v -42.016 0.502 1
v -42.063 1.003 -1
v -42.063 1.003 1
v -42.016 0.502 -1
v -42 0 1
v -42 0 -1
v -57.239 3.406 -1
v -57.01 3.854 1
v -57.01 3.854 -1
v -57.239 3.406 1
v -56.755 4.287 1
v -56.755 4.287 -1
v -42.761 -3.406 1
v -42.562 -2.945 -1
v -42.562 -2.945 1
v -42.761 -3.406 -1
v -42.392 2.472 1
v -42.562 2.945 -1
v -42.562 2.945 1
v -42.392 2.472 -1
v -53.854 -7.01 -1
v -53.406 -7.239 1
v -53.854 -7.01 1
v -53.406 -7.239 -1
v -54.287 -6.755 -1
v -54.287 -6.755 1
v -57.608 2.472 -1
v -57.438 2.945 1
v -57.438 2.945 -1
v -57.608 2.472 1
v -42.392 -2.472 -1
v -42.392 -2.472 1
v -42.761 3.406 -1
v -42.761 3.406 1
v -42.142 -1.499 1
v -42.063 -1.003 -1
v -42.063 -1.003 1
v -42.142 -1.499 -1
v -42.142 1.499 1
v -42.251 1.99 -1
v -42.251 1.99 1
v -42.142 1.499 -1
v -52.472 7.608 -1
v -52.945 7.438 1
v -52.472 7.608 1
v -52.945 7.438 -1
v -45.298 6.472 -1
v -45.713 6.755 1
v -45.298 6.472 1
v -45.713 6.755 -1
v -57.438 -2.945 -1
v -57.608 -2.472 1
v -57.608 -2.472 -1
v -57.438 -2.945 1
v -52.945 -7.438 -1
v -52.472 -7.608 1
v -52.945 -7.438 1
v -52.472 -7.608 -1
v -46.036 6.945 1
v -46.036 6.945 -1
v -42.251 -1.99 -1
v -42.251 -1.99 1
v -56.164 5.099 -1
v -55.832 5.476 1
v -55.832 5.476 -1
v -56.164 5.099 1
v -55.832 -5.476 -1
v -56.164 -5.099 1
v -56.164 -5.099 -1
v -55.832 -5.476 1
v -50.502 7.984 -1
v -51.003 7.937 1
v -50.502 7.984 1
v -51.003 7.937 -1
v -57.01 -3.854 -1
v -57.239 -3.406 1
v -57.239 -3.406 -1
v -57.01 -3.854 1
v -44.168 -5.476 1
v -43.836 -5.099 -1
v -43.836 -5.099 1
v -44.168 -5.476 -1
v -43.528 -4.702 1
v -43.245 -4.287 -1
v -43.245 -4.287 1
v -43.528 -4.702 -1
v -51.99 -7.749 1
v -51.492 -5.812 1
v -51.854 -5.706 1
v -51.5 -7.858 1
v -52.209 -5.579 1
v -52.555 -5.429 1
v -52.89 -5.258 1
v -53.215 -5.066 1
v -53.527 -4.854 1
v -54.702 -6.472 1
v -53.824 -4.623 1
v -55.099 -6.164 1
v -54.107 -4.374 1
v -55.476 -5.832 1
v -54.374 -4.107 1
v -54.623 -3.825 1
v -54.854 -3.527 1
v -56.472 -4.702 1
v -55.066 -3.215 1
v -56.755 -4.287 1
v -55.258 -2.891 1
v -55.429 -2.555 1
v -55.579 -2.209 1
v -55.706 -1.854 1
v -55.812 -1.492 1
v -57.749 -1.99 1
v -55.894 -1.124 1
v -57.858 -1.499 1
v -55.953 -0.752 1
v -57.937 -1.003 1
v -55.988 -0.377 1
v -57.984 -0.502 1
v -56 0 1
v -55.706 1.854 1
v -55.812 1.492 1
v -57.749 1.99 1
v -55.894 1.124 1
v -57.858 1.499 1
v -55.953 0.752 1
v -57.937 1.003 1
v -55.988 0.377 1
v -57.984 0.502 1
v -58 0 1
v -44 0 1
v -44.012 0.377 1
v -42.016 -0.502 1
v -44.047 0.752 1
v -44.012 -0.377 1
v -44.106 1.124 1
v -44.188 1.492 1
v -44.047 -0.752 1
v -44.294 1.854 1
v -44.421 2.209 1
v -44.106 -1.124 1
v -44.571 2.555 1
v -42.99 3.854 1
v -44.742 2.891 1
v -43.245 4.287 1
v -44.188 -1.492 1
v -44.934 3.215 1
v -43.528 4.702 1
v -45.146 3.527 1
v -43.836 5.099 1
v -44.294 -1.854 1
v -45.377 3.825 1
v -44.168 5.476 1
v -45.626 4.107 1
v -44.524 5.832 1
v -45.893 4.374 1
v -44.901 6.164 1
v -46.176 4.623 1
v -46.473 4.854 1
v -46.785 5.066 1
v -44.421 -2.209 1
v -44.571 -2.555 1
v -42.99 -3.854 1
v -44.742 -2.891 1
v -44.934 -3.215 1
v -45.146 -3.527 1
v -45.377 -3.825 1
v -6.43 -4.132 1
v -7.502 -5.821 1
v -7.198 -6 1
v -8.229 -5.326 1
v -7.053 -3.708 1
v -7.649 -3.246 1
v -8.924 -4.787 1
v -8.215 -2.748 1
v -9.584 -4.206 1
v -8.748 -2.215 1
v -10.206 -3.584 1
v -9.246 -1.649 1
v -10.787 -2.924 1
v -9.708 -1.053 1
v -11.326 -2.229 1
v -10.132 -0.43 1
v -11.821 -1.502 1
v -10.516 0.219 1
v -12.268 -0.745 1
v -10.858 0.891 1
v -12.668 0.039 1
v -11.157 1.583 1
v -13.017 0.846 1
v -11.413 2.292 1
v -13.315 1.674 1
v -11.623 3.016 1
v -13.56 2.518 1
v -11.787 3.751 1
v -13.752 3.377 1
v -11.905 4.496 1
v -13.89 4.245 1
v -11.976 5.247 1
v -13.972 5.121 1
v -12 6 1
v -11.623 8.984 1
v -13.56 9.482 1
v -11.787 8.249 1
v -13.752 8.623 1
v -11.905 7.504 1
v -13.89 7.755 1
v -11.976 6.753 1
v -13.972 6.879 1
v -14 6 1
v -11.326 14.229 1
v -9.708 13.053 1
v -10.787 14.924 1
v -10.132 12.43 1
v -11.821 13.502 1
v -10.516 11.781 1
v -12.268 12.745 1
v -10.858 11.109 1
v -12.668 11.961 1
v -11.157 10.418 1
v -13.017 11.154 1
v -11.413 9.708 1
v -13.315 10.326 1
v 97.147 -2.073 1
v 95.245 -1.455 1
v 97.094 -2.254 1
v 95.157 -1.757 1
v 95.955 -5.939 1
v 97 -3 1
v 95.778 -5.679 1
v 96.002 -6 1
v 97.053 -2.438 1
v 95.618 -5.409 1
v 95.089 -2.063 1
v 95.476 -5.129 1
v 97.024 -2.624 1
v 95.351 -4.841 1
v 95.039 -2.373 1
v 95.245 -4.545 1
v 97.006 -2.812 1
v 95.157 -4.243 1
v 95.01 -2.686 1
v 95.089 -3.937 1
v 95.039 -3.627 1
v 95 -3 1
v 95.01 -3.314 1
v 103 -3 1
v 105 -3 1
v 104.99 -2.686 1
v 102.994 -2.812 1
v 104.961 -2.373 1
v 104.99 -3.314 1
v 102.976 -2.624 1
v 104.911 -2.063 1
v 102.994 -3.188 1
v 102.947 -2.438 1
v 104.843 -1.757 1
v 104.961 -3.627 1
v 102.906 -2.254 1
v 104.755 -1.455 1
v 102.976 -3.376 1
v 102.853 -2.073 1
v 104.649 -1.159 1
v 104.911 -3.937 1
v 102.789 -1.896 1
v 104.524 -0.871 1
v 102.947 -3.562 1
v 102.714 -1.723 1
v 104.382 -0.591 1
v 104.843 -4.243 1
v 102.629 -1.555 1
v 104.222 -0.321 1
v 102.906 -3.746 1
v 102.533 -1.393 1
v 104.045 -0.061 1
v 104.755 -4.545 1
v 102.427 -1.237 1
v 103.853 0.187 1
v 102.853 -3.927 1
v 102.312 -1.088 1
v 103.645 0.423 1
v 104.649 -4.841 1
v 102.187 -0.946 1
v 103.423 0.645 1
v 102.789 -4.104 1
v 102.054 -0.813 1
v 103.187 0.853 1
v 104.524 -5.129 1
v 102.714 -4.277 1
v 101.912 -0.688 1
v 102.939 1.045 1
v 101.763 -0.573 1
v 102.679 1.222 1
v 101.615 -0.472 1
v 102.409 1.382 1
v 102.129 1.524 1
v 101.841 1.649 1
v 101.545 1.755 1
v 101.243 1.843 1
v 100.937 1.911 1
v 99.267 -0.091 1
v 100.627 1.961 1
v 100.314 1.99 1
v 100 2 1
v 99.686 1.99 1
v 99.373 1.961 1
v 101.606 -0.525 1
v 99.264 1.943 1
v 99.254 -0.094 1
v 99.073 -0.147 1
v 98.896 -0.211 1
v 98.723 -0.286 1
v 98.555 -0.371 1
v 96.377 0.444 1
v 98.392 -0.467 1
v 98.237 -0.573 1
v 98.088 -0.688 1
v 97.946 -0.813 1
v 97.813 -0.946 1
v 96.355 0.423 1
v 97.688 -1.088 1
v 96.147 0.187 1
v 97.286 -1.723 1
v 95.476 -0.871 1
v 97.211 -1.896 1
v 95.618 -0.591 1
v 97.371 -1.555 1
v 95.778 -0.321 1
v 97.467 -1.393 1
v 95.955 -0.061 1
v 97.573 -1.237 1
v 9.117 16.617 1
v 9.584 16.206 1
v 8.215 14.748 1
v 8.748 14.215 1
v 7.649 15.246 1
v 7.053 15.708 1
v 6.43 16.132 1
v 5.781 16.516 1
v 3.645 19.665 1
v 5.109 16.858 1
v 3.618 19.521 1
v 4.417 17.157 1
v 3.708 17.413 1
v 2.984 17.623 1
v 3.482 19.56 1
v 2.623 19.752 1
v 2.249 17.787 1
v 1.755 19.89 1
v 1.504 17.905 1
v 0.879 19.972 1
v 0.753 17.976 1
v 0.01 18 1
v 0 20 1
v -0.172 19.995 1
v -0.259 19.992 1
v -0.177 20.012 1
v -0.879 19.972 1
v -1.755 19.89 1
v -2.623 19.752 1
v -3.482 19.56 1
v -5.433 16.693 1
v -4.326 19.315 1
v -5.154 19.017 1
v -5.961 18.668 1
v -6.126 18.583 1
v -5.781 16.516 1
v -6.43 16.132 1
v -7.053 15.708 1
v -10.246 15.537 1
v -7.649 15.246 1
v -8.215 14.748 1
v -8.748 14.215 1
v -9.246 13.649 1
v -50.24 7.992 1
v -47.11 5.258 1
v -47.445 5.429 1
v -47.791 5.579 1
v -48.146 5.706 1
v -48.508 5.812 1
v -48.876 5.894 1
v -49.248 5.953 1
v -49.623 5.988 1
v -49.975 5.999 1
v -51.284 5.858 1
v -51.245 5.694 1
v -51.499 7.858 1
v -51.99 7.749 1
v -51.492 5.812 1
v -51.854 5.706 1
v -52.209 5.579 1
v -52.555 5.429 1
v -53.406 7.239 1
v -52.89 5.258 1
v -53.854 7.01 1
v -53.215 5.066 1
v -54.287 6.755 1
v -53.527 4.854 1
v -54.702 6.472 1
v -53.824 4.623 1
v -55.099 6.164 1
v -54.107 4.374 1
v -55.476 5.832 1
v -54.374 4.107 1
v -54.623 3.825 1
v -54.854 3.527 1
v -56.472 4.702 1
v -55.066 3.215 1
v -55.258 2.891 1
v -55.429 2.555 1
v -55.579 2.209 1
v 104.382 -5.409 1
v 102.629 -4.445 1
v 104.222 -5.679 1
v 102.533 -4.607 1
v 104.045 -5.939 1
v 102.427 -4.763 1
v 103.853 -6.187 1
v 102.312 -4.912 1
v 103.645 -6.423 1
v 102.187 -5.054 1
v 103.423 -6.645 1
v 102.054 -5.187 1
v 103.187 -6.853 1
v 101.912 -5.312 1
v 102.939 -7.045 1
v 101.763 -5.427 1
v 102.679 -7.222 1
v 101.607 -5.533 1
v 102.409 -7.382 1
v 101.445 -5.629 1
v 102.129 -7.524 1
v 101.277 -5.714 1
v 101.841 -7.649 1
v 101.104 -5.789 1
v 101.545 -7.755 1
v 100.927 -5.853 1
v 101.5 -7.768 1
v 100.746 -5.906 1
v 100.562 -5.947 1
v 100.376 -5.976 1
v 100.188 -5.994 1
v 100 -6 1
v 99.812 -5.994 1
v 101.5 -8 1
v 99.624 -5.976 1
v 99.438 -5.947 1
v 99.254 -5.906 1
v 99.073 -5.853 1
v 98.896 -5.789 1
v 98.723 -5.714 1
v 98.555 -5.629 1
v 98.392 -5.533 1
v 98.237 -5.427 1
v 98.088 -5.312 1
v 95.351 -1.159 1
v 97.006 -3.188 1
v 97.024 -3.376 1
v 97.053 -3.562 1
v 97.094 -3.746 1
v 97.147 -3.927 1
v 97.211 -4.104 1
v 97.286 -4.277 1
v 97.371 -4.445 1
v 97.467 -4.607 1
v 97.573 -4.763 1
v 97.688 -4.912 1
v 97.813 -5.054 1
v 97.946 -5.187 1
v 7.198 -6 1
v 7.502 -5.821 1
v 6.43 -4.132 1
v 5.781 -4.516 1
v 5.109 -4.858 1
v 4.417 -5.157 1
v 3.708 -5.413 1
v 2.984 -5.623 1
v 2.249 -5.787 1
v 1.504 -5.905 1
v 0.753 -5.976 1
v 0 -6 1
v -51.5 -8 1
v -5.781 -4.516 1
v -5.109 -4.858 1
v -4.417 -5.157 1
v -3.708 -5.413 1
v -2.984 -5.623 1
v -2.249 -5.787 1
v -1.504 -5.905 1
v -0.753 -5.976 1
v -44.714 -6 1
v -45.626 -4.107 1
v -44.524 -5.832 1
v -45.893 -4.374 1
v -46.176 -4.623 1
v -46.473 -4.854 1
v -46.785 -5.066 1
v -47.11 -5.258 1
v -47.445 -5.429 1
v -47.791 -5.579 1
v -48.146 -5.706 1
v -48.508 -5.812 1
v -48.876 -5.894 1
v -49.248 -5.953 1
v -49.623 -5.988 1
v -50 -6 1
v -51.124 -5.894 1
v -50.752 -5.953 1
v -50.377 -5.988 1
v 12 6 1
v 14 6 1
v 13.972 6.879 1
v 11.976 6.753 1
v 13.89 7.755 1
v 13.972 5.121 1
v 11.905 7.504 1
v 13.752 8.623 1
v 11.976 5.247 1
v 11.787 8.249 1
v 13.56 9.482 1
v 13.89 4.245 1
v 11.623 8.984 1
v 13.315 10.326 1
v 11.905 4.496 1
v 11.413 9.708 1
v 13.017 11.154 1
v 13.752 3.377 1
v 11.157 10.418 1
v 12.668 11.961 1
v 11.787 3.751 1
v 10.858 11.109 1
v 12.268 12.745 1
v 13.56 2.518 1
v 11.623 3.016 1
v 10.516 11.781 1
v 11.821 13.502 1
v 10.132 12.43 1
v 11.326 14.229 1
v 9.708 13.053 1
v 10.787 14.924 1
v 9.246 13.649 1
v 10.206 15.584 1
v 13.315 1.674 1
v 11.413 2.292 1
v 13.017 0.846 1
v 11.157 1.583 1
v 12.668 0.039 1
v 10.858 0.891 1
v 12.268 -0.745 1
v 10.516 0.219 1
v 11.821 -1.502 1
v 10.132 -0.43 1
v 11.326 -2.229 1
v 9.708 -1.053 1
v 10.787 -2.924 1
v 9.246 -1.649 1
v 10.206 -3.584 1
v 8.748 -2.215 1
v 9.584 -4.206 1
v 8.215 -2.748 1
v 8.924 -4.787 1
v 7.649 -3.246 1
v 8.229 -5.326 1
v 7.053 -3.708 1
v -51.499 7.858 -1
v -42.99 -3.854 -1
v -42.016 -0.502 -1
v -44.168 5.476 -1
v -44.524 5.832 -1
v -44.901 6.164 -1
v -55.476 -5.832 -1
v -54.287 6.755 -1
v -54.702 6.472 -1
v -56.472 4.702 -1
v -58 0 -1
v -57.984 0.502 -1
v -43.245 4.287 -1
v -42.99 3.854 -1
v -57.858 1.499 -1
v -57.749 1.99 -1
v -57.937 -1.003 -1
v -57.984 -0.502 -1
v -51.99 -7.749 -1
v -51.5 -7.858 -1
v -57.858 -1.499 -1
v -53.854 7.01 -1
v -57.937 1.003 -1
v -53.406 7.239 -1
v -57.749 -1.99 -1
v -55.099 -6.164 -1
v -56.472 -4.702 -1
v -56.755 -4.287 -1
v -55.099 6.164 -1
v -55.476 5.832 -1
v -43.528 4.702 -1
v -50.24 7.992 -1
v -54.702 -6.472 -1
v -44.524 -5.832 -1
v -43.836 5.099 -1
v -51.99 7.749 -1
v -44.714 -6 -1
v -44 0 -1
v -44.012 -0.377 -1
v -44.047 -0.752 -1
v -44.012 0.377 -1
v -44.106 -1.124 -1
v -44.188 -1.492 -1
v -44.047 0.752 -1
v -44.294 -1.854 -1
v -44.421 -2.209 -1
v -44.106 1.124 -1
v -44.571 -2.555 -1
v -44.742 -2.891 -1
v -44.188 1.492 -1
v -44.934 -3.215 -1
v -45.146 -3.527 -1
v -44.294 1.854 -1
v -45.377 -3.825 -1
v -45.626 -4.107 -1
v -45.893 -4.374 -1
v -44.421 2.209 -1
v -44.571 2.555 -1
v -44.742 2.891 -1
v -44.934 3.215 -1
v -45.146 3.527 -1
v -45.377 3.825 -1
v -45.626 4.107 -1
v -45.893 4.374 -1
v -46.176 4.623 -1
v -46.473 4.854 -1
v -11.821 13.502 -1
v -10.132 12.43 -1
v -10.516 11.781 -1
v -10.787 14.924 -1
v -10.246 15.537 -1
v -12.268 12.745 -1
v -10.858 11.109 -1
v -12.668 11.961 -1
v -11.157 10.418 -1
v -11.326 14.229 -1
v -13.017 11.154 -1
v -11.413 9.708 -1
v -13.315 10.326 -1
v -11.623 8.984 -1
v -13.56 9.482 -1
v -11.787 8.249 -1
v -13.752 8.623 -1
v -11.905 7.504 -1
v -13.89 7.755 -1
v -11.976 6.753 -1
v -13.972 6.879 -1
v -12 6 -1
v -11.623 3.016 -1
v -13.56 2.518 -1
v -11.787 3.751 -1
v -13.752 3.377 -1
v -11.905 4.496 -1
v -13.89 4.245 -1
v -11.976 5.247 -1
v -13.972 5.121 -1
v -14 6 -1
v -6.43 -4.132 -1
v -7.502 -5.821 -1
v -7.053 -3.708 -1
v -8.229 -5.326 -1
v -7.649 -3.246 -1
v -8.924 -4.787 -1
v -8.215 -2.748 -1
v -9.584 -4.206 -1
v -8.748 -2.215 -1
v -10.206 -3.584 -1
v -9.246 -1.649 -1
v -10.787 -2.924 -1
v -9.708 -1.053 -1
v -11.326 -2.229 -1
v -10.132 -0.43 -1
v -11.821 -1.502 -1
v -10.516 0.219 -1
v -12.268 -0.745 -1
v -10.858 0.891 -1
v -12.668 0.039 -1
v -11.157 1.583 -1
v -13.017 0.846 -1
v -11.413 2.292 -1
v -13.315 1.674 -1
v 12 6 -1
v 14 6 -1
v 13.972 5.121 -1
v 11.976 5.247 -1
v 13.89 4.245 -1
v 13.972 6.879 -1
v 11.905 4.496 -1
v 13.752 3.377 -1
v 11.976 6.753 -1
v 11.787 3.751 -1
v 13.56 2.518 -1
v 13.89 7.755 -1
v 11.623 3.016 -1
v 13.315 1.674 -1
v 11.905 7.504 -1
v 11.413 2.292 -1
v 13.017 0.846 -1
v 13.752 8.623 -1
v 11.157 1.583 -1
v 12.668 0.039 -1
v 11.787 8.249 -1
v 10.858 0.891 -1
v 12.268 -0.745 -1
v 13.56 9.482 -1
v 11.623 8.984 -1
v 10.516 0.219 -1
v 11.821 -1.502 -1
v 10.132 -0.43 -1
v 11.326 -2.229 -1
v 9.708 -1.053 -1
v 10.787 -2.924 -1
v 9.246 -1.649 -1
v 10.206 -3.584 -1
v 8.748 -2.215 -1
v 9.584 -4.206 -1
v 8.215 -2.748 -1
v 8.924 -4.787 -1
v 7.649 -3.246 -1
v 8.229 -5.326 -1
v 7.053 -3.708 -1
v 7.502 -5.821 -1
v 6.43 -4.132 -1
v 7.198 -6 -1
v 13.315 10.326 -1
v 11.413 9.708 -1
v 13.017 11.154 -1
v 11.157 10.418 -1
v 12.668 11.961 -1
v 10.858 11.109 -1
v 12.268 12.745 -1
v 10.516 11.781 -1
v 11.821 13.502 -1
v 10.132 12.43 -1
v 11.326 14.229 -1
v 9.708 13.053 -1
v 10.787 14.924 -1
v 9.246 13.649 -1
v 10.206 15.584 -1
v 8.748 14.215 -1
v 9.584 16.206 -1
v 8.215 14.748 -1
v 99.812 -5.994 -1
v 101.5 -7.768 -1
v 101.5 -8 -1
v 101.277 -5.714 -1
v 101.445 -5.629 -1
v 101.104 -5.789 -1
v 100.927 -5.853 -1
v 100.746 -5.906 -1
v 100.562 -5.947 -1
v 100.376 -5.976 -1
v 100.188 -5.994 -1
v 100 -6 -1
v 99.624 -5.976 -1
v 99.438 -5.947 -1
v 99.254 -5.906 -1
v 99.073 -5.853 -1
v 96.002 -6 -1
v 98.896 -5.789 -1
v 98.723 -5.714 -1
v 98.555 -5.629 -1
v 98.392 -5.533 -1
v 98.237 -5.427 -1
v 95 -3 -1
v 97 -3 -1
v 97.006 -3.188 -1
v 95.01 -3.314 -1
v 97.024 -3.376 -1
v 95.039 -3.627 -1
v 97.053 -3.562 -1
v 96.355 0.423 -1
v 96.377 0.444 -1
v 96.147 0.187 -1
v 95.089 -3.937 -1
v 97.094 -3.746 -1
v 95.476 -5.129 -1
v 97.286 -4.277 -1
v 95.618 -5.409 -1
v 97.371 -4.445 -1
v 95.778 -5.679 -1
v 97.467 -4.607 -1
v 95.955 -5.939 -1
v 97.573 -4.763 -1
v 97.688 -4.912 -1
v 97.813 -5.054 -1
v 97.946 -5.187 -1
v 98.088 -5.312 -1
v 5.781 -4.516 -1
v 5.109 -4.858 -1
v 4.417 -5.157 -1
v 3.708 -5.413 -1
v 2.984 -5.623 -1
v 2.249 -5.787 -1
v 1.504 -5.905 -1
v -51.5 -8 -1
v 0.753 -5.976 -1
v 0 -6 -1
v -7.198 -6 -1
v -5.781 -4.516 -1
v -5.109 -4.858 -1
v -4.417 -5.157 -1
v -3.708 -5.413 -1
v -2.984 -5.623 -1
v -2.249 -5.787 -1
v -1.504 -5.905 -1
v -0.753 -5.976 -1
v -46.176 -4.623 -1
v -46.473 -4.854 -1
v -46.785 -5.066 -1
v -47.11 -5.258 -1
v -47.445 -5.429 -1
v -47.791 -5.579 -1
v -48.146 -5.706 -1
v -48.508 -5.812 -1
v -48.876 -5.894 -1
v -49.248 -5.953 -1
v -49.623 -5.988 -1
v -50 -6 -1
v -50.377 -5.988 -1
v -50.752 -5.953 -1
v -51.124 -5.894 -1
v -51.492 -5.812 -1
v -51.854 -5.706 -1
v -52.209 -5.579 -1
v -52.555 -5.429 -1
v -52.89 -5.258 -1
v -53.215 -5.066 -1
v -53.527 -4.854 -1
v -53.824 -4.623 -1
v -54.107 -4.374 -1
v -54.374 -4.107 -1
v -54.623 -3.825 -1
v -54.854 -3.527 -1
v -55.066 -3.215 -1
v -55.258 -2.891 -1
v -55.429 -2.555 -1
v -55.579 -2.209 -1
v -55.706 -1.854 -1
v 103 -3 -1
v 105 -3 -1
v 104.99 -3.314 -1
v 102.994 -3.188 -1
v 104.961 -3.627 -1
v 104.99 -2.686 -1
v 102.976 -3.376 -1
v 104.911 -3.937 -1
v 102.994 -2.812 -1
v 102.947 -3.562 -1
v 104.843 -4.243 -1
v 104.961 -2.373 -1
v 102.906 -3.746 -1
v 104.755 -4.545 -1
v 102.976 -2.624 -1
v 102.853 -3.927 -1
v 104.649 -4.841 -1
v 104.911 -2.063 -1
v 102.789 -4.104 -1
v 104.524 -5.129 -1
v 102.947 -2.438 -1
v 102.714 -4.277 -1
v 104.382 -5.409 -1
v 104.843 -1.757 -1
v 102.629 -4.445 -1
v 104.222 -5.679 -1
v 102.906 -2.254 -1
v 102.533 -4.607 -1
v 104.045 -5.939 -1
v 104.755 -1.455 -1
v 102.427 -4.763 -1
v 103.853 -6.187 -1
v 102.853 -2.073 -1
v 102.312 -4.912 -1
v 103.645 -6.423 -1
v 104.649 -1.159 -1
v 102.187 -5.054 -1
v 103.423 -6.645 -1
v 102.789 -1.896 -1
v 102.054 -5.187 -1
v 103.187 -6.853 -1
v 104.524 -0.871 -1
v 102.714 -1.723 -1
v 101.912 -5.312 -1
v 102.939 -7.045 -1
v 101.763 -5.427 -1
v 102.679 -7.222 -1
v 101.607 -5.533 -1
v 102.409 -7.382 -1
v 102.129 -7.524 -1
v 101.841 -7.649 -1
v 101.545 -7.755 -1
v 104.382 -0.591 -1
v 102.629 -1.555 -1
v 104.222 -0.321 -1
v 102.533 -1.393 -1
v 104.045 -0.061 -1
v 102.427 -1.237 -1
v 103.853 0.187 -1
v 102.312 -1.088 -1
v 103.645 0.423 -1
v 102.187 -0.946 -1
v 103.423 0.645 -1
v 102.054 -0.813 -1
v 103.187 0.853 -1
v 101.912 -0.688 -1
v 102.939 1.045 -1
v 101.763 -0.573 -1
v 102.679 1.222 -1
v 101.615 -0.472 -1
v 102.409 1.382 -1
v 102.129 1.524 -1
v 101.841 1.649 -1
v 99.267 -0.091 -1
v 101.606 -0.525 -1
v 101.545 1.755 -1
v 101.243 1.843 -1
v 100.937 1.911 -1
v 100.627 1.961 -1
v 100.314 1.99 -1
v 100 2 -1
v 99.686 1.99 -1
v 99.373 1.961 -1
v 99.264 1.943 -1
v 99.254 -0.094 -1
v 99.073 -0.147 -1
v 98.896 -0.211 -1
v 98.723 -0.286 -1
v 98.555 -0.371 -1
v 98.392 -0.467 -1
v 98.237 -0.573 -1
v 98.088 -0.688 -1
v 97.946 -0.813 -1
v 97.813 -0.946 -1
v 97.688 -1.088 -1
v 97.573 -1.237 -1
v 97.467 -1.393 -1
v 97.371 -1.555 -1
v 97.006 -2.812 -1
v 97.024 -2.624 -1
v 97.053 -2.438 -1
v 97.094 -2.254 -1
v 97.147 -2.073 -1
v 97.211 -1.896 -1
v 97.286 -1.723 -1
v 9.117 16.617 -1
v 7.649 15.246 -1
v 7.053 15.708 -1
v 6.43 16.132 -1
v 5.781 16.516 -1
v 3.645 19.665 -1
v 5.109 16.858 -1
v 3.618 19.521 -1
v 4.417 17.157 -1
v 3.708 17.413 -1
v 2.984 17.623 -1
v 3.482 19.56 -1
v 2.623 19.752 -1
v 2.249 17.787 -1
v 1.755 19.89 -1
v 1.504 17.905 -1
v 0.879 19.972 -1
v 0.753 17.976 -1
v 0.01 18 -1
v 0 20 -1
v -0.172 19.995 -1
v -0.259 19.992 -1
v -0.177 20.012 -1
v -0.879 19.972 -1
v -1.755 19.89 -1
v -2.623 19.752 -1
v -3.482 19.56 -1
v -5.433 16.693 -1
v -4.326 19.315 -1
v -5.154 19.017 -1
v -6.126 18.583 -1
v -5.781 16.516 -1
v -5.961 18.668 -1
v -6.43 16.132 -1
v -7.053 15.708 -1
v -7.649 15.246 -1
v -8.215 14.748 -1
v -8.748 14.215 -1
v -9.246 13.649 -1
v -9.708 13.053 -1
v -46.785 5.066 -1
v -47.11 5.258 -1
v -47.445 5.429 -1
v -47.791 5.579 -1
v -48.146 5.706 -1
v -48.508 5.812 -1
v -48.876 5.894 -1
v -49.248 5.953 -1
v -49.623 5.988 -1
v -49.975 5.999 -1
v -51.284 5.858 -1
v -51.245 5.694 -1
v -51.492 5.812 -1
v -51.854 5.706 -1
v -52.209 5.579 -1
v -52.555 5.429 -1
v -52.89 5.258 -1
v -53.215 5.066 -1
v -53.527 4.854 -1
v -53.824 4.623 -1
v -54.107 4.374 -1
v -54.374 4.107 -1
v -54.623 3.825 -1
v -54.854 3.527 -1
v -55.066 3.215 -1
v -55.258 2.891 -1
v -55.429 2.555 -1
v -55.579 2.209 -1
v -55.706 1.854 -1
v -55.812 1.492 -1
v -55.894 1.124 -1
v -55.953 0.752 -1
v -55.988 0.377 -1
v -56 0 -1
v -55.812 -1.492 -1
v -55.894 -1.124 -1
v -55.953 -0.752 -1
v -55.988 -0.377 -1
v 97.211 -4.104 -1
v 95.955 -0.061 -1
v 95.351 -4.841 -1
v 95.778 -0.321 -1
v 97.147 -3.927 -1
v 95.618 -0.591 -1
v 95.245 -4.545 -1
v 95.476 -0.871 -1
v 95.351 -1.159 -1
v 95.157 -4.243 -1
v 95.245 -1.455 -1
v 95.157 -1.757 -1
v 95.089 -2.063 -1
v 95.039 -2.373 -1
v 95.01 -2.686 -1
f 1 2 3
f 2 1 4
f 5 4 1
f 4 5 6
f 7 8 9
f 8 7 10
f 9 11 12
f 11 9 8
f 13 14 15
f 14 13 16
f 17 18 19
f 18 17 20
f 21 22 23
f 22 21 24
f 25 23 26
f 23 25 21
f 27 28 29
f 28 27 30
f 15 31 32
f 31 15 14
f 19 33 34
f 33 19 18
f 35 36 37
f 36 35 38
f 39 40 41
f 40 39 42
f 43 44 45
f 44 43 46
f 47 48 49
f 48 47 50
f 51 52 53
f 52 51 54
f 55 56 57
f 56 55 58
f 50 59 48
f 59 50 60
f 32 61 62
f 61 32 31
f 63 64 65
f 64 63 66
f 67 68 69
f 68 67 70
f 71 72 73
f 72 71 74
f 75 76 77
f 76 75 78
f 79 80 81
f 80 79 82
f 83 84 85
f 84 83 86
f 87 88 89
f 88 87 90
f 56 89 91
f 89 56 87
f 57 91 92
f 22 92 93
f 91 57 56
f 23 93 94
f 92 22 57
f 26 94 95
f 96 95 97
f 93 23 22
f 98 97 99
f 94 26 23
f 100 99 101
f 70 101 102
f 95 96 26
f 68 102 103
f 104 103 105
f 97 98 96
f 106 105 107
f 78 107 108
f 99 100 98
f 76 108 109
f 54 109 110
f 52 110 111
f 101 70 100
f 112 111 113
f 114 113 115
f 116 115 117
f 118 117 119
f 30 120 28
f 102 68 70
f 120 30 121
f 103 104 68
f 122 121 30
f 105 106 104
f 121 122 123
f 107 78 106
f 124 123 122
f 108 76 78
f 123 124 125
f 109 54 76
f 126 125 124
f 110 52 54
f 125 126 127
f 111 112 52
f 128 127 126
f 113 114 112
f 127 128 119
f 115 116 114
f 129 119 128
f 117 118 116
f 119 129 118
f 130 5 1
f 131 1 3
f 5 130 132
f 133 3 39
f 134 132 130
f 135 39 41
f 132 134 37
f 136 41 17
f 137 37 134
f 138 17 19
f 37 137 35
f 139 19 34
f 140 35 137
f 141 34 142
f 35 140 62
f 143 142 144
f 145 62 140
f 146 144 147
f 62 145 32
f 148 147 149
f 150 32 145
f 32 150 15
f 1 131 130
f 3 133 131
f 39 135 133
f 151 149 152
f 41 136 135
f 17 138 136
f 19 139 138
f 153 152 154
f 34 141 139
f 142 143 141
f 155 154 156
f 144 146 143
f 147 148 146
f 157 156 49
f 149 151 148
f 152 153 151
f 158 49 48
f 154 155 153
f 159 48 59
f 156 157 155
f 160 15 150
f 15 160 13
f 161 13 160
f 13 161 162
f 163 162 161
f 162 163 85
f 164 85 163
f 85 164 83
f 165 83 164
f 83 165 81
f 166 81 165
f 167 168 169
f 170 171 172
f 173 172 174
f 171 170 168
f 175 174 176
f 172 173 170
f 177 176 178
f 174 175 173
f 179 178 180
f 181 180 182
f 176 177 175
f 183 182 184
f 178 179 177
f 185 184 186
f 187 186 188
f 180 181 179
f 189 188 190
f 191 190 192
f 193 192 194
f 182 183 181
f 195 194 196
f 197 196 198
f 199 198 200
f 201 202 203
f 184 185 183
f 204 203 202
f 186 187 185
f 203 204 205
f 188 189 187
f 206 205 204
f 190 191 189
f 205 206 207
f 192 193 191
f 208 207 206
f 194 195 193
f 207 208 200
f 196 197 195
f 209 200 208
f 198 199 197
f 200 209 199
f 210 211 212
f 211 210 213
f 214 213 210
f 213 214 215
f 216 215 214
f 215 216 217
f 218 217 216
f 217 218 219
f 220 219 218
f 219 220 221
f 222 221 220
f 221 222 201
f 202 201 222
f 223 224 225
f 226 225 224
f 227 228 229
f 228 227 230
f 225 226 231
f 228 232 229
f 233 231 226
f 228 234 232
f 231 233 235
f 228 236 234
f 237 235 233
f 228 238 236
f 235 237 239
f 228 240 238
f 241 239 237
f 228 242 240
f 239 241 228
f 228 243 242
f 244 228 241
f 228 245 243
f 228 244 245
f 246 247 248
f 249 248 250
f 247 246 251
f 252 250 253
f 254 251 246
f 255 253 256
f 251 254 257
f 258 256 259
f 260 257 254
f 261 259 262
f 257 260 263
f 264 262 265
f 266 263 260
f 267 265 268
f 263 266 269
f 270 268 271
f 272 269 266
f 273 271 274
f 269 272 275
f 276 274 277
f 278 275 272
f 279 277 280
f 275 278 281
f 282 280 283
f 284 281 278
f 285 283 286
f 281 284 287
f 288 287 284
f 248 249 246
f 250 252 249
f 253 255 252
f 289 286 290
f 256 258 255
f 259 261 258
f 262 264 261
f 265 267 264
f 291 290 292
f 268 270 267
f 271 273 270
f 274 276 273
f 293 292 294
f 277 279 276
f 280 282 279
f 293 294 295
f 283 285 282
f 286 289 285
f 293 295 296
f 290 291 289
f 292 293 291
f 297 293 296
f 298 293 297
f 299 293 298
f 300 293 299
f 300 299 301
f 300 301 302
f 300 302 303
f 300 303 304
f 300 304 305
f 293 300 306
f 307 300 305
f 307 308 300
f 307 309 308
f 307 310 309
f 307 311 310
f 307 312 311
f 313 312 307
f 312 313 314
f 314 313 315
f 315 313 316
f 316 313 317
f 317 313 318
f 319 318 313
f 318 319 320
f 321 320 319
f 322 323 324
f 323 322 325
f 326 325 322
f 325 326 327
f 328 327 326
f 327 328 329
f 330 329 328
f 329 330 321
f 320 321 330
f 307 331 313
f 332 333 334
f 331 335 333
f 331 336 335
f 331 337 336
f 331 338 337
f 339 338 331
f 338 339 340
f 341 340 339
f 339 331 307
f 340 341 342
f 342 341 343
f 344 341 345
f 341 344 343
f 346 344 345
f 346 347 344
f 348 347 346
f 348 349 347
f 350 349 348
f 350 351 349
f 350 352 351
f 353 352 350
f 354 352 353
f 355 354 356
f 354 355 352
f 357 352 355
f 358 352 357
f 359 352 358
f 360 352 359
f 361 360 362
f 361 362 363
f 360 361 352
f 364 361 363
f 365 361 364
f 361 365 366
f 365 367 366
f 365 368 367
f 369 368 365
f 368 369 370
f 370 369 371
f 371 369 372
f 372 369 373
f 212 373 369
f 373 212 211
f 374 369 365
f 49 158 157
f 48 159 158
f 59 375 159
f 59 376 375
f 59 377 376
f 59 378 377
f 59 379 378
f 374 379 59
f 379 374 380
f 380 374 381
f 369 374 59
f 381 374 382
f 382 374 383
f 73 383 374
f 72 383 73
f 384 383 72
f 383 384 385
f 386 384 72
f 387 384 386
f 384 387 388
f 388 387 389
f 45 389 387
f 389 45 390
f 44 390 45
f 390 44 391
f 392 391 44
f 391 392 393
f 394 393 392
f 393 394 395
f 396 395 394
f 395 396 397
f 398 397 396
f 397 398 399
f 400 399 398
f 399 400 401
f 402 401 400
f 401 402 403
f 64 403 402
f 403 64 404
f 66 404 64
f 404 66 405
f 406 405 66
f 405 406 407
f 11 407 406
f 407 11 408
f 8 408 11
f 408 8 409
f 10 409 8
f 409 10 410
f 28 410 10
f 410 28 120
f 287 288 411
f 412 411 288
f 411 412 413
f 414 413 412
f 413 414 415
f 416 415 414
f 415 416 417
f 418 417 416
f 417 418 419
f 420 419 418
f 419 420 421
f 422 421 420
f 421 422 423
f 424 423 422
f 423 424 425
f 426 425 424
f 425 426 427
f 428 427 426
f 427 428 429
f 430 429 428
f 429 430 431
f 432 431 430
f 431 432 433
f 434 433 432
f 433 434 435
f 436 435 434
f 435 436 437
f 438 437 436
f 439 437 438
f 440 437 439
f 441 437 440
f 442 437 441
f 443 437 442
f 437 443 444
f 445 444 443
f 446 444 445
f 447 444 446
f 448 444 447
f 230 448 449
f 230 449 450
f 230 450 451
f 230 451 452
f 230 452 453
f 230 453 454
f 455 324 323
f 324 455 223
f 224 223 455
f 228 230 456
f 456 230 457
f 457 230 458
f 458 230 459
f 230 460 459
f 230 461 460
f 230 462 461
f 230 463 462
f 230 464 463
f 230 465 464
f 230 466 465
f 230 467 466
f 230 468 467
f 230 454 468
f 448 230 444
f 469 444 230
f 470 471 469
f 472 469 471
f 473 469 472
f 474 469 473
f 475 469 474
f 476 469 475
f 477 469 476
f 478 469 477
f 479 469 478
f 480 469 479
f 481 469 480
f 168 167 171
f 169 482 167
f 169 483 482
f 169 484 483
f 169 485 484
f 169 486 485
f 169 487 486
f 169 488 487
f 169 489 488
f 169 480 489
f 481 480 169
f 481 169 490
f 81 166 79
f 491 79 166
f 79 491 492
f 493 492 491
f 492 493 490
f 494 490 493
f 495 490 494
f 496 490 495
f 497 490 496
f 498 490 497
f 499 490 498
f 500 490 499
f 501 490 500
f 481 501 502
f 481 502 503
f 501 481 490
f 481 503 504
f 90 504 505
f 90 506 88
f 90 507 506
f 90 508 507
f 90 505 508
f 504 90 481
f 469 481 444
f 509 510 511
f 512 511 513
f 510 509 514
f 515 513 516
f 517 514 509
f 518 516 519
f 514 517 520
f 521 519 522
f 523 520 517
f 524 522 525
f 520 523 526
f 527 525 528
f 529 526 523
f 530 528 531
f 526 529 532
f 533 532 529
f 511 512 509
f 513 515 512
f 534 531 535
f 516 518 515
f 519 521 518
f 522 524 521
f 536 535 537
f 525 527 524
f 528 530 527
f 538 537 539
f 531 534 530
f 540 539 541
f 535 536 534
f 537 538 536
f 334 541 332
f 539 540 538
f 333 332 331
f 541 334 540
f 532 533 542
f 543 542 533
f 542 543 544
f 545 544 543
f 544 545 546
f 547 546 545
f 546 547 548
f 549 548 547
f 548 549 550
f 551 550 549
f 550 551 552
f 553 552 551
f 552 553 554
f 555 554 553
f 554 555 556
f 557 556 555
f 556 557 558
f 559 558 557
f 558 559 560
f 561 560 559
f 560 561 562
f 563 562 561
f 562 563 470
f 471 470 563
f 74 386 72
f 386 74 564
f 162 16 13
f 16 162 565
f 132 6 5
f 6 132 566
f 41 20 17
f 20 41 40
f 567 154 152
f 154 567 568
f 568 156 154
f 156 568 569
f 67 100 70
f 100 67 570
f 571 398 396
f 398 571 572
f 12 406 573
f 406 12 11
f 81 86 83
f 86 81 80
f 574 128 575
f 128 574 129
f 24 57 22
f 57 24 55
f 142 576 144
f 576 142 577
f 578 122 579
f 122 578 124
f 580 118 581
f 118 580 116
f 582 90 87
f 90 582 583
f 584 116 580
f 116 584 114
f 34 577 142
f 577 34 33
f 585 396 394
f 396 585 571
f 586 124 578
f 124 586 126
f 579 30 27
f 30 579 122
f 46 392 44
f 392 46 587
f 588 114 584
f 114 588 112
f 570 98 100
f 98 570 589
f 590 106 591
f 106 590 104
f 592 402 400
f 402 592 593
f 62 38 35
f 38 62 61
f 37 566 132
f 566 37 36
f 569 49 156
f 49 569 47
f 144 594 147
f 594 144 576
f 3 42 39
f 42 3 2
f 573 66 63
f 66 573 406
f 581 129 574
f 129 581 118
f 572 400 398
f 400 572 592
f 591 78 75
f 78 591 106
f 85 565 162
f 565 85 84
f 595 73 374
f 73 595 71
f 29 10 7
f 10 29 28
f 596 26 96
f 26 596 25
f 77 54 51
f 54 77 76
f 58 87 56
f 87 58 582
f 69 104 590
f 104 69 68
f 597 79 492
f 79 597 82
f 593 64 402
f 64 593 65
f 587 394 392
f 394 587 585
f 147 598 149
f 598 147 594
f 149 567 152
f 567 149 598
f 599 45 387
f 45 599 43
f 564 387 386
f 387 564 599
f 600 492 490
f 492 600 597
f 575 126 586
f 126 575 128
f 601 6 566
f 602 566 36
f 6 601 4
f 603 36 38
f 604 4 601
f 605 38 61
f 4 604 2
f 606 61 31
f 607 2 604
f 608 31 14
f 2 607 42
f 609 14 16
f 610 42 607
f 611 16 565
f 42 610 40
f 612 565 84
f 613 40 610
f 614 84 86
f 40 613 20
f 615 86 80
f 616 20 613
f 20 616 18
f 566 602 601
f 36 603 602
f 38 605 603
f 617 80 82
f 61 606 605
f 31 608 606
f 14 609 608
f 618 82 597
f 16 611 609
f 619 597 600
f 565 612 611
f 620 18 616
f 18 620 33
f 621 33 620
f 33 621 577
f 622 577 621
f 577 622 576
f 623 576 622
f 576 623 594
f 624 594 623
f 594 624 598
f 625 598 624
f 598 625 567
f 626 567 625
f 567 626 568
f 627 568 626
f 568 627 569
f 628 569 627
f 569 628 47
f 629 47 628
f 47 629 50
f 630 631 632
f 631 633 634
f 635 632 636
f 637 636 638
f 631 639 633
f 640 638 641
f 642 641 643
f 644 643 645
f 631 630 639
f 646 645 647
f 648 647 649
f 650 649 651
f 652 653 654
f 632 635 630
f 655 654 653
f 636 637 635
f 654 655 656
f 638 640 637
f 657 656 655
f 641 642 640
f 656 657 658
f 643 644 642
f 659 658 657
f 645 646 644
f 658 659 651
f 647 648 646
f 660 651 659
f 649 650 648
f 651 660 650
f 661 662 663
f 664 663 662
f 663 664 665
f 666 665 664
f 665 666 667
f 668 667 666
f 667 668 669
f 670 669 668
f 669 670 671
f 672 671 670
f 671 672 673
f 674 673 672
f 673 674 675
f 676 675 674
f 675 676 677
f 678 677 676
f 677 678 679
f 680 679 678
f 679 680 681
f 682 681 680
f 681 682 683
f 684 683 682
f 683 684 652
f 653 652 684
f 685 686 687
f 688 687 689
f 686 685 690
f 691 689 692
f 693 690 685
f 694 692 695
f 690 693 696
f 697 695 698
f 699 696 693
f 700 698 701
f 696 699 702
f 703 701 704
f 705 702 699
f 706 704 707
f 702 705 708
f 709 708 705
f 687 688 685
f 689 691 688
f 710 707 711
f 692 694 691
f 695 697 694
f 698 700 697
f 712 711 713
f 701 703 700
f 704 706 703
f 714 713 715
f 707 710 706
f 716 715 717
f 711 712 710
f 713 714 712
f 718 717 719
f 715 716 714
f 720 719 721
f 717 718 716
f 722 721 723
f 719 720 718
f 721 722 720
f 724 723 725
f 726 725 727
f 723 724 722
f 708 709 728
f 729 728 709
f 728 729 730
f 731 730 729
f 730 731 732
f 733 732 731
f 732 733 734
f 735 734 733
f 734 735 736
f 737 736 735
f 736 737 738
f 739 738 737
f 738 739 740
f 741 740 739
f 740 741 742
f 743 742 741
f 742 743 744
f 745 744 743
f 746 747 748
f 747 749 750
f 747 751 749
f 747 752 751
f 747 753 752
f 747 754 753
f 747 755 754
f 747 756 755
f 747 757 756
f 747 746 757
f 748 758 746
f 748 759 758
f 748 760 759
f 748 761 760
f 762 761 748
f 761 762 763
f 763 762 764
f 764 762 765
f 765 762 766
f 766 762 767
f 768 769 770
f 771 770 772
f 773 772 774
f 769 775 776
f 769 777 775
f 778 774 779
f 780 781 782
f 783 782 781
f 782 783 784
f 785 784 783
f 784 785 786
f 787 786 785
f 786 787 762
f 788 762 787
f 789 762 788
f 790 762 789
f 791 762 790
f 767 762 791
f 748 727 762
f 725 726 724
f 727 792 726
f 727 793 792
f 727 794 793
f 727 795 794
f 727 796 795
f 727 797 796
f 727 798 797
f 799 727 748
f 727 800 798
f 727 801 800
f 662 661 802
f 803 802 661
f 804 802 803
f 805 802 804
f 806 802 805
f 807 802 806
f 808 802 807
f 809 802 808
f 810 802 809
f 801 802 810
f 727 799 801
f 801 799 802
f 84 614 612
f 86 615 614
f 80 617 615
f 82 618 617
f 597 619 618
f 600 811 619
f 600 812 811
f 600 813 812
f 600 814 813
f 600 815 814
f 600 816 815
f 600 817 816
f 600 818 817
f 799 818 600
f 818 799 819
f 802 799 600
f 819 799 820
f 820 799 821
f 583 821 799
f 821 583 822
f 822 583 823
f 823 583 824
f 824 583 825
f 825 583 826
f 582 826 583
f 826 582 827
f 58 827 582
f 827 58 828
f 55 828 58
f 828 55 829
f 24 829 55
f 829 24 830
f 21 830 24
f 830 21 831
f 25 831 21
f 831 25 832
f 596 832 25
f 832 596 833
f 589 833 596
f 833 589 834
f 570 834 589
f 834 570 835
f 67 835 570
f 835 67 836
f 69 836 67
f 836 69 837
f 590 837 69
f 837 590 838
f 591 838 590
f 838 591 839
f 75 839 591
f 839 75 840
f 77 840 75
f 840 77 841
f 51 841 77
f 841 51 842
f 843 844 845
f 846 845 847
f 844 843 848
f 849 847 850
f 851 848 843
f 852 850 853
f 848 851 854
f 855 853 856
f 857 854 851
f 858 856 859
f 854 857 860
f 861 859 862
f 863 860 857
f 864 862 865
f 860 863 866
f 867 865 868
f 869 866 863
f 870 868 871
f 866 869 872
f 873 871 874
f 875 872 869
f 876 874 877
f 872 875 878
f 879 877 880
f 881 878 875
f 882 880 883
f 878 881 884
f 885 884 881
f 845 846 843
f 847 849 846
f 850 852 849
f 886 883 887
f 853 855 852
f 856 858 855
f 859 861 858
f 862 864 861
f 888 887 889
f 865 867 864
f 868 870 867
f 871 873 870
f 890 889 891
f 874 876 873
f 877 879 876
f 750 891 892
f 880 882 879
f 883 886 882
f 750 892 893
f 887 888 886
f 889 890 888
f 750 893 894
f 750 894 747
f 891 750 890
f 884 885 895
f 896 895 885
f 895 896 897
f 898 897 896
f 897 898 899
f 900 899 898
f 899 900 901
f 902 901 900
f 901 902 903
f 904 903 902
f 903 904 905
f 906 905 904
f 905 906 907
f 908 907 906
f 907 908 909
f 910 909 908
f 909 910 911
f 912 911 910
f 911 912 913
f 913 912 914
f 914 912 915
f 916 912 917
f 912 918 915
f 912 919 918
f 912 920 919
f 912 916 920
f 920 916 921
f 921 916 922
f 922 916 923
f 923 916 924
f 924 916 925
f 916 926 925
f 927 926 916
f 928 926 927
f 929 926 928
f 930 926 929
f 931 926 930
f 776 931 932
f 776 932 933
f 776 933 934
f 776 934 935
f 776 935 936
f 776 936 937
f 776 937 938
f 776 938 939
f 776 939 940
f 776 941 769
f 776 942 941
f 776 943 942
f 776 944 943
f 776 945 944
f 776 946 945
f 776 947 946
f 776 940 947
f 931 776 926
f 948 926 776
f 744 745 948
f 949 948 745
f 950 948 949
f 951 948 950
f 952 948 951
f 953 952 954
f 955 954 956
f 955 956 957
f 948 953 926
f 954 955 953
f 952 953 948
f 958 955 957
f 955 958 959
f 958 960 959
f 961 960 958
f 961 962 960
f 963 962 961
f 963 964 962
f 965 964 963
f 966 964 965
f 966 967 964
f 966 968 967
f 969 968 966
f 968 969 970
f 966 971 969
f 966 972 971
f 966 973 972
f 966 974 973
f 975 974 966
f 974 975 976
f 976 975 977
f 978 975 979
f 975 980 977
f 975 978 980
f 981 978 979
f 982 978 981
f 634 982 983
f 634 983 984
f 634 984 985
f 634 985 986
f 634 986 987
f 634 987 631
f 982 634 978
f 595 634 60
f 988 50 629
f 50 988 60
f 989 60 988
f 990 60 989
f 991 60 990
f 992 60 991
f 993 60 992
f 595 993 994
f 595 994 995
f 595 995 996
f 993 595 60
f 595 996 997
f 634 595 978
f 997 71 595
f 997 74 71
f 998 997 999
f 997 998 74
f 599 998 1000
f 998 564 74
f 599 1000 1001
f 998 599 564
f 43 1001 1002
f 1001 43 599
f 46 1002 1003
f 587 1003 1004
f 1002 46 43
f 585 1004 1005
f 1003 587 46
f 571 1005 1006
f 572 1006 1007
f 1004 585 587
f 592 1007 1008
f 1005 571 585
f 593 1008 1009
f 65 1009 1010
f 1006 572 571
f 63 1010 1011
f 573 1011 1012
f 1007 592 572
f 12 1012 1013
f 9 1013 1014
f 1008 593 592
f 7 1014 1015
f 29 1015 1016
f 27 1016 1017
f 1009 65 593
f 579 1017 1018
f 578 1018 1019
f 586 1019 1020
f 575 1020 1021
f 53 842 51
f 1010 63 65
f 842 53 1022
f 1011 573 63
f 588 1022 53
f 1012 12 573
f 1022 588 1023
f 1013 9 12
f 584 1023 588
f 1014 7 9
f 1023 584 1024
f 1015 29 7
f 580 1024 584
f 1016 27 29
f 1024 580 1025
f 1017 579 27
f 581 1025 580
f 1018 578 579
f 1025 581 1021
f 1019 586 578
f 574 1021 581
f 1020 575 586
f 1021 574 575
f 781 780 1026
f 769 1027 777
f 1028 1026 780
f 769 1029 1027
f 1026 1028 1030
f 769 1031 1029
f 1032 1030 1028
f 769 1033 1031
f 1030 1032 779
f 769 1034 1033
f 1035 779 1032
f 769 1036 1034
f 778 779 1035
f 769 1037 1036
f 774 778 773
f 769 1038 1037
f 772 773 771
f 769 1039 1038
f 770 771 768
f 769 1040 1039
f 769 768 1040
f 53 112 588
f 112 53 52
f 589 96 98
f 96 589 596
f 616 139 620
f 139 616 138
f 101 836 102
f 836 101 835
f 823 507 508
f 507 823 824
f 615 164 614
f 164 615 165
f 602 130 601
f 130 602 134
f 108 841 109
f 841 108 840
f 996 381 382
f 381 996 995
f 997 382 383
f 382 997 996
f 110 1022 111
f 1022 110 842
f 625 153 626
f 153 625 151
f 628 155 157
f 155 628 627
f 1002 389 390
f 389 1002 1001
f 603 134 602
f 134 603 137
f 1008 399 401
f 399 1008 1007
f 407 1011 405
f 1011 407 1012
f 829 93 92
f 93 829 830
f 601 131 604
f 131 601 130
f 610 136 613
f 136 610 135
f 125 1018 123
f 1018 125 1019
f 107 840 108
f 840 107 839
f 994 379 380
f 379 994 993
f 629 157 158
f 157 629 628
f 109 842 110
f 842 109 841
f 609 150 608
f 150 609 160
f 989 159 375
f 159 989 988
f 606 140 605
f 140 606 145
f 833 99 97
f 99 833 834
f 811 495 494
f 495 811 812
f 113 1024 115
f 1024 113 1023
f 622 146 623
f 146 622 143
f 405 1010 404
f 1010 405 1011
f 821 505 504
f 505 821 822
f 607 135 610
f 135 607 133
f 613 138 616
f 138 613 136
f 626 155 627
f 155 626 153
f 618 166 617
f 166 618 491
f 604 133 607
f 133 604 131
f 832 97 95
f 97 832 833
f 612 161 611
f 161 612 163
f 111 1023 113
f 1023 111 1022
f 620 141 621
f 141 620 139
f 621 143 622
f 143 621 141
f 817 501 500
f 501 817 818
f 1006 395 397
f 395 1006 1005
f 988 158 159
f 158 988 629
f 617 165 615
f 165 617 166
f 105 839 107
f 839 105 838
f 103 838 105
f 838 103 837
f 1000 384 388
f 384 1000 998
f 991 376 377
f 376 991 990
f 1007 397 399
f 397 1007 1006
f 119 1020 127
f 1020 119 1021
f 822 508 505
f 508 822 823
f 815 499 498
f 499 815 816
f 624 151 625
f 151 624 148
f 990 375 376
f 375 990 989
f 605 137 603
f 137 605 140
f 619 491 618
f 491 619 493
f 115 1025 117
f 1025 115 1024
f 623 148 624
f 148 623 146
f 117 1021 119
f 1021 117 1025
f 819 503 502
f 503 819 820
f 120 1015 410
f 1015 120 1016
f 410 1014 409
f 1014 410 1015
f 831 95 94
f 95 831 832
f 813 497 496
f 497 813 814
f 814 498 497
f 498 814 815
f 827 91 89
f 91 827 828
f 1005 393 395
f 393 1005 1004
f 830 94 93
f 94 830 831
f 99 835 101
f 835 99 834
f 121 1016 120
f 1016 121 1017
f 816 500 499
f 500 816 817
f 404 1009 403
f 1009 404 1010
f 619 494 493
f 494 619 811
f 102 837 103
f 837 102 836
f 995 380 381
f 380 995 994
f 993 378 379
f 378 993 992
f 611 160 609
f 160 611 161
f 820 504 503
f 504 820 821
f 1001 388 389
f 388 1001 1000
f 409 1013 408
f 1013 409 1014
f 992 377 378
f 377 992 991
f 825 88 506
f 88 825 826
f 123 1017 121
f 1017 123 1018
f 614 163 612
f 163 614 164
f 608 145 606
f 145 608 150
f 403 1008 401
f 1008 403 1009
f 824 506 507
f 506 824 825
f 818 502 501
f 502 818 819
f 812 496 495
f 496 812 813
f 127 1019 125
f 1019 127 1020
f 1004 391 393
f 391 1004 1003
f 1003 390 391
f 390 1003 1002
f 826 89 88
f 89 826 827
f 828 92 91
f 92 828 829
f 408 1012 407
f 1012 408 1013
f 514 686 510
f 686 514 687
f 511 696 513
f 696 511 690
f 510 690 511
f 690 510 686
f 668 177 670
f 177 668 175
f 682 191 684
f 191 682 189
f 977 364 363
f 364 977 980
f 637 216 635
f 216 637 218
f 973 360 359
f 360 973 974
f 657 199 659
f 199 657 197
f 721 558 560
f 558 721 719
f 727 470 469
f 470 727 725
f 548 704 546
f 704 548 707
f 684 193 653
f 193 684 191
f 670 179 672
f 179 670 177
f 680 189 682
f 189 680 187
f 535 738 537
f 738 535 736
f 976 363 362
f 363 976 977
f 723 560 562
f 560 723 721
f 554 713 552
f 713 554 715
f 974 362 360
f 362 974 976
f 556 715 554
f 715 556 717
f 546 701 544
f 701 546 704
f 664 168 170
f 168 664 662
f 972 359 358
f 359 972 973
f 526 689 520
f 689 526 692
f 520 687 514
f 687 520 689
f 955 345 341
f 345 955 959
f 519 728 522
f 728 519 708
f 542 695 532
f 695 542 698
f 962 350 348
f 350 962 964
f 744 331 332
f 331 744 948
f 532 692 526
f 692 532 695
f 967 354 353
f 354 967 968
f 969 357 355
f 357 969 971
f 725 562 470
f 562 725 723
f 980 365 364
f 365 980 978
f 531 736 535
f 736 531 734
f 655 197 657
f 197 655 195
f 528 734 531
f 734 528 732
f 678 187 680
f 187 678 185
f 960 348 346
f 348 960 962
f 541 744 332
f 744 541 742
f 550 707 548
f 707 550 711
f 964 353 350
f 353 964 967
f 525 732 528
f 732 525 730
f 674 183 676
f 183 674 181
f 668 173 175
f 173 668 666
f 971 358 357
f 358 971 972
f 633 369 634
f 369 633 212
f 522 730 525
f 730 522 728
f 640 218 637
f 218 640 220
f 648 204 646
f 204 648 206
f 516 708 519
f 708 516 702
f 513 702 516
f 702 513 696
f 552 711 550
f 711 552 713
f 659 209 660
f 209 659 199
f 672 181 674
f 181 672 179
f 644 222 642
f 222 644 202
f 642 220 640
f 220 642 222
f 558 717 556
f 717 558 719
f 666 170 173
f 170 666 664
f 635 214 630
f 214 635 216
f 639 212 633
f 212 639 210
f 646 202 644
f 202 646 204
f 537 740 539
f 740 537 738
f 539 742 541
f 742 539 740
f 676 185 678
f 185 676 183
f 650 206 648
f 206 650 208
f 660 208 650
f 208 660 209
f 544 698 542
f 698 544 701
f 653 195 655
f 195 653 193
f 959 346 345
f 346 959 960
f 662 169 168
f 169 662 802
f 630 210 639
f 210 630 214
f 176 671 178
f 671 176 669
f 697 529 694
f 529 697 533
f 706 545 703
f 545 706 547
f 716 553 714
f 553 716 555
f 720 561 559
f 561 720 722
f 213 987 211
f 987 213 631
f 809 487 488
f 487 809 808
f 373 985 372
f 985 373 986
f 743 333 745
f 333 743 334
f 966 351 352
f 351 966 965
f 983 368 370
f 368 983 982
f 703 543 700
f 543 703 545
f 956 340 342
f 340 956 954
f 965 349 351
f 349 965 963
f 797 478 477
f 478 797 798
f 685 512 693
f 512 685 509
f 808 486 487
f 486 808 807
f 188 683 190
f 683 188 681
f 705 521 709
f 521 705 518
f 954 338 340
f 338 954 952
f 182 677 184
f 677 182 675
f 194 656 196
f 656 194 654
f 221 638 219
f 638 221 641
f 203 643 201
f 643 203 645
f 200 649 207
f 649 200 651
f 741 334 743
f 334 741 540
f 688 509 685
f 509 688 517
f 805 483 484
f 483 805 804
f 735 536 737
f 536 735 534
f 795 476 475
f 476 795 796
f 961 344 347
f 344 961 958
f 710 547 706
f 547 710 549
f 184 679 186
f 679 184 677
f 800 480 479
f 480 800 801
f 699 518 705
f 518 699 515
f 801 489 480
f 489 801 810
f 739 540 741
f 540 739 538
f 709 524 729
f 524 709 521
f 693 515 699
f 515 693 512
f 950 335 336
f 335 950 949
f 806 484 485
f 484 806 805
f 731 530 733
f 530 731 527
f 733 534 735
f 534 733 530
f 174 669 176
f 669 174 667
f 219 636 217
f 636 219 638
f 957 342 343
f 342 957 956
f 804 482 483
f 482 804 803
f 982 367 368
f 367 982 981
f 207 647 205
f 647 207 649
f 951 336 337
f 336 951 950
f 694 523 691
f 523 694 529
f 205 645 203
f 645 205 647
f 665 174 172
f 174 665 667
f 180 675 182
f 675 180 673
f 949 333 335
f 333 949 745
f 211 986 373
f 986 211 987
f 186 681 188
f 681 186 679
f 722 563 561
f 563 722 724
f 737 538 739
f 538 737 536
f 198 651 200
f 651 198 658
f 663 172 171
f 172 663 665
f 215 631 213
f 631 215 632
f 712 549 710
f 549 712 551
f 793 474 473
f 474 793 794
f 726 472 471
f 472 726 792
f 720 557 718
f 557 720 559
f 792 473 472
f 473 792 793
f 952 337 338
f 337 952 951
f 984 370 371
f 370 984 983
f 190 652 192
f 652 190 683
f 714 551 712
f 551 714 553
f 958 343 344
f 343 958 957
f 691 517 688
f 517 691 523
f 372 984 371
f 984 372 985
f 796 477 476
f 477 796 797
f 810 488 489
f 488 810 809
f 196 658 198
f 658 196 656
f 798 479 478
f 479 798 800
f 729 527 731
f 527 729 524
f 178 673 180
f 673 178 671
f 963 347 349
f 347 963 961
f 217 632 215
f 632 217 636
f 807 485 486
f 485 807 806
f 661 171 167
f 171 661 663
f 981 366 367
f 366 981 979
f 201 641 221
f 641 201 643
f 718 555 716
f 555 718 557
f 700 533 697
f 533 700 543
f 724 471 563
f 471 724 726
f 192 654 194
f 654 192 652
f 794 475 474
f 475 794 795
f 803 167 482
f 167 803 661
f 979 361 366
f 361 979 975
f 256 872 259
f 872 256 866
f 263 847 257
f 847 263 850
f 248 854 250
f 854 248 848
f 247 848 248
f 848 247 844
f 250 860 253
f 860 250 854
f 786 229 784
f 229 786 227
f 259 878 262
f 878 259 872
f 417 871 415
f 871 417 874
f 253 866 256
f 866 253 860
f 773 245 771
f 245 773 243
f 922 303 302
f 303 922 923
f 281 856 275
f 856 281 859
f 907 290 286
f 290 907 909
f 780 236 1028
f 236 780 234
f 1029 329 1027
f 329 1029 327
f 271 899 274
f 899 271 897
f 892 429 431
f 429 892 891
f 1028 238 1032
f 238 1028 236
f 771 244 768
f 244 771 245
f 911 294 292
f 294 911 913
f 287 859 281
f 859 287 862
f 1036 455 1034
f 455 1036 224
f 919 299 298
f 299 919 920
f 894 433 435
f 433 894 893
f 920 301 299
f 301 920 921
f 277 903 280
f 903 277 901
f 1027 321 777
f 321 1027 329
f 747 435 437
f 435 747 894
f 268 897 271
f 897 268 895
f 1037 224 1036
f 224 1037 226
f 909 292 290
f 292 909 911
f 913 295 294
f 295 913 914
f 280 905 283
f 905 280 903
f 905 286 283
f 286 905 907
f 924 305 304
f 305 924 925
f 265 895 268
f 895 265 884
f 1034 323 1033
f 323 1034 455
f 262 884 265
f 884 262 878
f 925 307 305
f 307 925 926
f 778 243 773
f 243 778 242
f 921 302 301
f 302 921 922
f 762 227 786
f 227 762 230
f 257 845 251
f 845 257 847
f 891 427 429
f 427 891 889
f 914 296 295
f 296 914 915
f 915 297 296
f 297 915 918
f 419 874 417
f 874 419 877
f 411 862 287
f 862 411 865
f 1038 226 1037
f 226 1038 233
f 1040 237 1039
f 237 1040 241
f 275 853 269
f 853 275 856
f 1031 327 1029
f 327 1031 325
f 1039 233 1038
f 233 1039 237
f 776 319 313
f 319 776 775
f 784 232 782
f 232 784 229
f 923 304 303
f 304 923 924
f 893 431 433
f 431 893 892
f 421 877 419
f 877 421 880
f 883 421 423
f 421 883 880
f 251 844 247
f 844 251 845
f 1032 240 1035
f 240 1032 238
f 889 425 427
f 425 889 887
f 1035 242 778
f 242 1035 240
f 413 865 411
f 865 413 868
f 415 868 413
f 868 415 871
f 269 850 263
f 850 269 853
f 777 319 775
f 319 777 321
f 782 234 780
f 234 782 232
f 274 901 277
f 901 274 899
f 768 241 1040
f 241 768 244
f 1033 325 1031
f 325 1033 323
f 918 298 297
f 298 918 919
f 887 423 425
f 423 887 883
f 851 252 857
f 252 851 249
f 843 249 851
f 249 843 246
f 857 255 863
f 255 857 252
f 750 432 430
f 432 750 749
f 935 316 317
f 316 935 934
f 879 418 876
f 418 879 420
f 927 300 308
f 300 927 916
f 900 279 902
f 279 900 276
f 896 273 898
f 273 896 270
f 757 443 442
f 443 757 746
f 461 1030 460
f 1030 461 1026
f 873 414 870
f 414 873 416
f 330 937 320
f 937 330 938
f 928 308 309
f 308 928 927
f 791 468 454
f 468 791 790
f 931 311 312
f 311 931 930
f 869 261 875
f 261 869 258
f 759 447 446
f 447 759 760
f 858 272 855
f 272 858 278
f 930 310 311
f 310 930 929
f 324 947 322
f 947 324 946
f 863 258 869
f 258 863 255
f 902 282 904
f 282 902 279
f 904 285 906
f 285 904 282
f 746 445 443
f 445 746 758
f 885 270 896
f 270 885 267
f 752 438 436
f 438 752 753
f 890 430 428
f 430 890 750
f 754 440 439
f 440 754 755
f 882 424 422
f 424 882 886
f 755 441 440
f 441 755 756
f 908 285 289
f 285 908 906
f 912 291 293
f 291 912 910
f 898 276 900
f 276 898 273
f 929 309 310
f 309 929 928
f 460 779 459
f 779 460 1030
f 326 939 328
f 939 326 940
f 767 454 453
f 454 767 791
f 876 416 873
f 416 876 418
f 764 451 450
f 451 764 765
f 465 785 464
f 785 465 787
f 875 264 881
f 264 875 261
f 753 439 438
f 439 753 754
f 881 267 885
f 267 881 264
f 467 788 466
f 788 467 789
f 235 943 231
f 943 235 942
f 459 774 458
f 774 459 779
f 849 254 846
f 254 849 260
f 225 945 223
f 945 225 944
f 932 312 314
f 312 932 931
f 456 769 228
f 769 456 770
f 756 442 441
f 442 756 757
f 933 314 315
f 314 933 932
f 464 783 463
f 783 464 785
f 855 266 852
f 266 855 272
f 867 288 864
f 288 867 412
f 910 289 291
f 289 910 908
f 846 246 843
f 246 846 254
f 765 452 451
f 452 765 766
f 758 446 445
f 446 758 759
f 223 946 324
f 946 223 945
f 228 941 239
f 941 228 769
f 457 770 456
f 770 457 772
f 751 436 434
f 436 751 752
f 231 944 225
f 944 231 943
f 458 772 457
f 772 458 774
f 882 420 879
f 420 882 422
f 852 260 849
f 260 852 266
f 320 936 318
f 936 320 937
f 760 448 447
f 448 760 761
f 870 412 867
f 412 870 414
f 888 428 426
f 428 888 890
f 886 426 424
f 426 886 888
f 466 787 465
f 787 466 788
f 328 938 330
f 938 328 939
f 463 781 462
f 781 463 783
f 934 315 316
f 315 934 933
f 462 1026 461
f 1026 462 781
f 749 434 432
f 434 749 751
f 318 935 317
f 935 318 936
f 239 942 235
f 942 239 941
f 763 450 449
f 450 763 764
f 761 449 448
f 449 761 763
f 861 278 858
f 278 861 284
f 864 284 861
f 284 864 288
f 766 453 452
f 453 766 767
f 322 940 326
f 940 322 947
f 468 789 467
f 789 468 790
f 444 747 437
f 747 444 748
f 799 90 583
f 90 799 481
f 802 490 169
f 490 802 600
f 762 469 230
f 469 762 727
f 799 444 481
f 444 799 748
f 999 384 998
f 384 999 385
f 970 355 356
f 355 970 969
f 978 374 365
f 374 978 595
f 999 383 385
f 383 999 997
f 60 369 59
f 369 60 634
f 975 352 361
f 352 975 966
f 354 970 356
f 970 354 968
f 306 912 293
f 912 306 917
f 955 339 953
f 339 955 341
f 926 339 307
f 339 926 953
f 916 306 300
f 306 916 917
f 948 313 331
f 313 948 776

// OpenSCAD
$fn=100;

spar_width = 2;
ring1 = 8;
ring2 = 14;
ring3 = 5;

translate([25,-7,0])
cube([153, spar_width, spar_width], true);

rotate([0,0,13.5])
translate([-22,18.5,0])
cube([53, spar_width, spar_width], true);

rotate([0,0,-10.5])
translate([50,19,0])
cube([100, spar_width, spar_width], true);


translate([-50,0,0])
difference() {
    cylinder(spar_width, ring1, ring1, true);
    cylinder(spar_width+2, ring1-2, ring1-2, true);
}

translate([0,6,0])
difference() {
    cylinder(spar_width, ring2, ring2, true);
    cylinder(spar_width+2, ring2-2, ring2-2, true);
}

translate([100,-3,0])
difference() {
    cylinder(spar_width, ring3, ring3, true);
    cylinder(spar_width+2, ring3-2, ring3-2, true);
}

// 98 port hacking rd slyvania nsw 2224
